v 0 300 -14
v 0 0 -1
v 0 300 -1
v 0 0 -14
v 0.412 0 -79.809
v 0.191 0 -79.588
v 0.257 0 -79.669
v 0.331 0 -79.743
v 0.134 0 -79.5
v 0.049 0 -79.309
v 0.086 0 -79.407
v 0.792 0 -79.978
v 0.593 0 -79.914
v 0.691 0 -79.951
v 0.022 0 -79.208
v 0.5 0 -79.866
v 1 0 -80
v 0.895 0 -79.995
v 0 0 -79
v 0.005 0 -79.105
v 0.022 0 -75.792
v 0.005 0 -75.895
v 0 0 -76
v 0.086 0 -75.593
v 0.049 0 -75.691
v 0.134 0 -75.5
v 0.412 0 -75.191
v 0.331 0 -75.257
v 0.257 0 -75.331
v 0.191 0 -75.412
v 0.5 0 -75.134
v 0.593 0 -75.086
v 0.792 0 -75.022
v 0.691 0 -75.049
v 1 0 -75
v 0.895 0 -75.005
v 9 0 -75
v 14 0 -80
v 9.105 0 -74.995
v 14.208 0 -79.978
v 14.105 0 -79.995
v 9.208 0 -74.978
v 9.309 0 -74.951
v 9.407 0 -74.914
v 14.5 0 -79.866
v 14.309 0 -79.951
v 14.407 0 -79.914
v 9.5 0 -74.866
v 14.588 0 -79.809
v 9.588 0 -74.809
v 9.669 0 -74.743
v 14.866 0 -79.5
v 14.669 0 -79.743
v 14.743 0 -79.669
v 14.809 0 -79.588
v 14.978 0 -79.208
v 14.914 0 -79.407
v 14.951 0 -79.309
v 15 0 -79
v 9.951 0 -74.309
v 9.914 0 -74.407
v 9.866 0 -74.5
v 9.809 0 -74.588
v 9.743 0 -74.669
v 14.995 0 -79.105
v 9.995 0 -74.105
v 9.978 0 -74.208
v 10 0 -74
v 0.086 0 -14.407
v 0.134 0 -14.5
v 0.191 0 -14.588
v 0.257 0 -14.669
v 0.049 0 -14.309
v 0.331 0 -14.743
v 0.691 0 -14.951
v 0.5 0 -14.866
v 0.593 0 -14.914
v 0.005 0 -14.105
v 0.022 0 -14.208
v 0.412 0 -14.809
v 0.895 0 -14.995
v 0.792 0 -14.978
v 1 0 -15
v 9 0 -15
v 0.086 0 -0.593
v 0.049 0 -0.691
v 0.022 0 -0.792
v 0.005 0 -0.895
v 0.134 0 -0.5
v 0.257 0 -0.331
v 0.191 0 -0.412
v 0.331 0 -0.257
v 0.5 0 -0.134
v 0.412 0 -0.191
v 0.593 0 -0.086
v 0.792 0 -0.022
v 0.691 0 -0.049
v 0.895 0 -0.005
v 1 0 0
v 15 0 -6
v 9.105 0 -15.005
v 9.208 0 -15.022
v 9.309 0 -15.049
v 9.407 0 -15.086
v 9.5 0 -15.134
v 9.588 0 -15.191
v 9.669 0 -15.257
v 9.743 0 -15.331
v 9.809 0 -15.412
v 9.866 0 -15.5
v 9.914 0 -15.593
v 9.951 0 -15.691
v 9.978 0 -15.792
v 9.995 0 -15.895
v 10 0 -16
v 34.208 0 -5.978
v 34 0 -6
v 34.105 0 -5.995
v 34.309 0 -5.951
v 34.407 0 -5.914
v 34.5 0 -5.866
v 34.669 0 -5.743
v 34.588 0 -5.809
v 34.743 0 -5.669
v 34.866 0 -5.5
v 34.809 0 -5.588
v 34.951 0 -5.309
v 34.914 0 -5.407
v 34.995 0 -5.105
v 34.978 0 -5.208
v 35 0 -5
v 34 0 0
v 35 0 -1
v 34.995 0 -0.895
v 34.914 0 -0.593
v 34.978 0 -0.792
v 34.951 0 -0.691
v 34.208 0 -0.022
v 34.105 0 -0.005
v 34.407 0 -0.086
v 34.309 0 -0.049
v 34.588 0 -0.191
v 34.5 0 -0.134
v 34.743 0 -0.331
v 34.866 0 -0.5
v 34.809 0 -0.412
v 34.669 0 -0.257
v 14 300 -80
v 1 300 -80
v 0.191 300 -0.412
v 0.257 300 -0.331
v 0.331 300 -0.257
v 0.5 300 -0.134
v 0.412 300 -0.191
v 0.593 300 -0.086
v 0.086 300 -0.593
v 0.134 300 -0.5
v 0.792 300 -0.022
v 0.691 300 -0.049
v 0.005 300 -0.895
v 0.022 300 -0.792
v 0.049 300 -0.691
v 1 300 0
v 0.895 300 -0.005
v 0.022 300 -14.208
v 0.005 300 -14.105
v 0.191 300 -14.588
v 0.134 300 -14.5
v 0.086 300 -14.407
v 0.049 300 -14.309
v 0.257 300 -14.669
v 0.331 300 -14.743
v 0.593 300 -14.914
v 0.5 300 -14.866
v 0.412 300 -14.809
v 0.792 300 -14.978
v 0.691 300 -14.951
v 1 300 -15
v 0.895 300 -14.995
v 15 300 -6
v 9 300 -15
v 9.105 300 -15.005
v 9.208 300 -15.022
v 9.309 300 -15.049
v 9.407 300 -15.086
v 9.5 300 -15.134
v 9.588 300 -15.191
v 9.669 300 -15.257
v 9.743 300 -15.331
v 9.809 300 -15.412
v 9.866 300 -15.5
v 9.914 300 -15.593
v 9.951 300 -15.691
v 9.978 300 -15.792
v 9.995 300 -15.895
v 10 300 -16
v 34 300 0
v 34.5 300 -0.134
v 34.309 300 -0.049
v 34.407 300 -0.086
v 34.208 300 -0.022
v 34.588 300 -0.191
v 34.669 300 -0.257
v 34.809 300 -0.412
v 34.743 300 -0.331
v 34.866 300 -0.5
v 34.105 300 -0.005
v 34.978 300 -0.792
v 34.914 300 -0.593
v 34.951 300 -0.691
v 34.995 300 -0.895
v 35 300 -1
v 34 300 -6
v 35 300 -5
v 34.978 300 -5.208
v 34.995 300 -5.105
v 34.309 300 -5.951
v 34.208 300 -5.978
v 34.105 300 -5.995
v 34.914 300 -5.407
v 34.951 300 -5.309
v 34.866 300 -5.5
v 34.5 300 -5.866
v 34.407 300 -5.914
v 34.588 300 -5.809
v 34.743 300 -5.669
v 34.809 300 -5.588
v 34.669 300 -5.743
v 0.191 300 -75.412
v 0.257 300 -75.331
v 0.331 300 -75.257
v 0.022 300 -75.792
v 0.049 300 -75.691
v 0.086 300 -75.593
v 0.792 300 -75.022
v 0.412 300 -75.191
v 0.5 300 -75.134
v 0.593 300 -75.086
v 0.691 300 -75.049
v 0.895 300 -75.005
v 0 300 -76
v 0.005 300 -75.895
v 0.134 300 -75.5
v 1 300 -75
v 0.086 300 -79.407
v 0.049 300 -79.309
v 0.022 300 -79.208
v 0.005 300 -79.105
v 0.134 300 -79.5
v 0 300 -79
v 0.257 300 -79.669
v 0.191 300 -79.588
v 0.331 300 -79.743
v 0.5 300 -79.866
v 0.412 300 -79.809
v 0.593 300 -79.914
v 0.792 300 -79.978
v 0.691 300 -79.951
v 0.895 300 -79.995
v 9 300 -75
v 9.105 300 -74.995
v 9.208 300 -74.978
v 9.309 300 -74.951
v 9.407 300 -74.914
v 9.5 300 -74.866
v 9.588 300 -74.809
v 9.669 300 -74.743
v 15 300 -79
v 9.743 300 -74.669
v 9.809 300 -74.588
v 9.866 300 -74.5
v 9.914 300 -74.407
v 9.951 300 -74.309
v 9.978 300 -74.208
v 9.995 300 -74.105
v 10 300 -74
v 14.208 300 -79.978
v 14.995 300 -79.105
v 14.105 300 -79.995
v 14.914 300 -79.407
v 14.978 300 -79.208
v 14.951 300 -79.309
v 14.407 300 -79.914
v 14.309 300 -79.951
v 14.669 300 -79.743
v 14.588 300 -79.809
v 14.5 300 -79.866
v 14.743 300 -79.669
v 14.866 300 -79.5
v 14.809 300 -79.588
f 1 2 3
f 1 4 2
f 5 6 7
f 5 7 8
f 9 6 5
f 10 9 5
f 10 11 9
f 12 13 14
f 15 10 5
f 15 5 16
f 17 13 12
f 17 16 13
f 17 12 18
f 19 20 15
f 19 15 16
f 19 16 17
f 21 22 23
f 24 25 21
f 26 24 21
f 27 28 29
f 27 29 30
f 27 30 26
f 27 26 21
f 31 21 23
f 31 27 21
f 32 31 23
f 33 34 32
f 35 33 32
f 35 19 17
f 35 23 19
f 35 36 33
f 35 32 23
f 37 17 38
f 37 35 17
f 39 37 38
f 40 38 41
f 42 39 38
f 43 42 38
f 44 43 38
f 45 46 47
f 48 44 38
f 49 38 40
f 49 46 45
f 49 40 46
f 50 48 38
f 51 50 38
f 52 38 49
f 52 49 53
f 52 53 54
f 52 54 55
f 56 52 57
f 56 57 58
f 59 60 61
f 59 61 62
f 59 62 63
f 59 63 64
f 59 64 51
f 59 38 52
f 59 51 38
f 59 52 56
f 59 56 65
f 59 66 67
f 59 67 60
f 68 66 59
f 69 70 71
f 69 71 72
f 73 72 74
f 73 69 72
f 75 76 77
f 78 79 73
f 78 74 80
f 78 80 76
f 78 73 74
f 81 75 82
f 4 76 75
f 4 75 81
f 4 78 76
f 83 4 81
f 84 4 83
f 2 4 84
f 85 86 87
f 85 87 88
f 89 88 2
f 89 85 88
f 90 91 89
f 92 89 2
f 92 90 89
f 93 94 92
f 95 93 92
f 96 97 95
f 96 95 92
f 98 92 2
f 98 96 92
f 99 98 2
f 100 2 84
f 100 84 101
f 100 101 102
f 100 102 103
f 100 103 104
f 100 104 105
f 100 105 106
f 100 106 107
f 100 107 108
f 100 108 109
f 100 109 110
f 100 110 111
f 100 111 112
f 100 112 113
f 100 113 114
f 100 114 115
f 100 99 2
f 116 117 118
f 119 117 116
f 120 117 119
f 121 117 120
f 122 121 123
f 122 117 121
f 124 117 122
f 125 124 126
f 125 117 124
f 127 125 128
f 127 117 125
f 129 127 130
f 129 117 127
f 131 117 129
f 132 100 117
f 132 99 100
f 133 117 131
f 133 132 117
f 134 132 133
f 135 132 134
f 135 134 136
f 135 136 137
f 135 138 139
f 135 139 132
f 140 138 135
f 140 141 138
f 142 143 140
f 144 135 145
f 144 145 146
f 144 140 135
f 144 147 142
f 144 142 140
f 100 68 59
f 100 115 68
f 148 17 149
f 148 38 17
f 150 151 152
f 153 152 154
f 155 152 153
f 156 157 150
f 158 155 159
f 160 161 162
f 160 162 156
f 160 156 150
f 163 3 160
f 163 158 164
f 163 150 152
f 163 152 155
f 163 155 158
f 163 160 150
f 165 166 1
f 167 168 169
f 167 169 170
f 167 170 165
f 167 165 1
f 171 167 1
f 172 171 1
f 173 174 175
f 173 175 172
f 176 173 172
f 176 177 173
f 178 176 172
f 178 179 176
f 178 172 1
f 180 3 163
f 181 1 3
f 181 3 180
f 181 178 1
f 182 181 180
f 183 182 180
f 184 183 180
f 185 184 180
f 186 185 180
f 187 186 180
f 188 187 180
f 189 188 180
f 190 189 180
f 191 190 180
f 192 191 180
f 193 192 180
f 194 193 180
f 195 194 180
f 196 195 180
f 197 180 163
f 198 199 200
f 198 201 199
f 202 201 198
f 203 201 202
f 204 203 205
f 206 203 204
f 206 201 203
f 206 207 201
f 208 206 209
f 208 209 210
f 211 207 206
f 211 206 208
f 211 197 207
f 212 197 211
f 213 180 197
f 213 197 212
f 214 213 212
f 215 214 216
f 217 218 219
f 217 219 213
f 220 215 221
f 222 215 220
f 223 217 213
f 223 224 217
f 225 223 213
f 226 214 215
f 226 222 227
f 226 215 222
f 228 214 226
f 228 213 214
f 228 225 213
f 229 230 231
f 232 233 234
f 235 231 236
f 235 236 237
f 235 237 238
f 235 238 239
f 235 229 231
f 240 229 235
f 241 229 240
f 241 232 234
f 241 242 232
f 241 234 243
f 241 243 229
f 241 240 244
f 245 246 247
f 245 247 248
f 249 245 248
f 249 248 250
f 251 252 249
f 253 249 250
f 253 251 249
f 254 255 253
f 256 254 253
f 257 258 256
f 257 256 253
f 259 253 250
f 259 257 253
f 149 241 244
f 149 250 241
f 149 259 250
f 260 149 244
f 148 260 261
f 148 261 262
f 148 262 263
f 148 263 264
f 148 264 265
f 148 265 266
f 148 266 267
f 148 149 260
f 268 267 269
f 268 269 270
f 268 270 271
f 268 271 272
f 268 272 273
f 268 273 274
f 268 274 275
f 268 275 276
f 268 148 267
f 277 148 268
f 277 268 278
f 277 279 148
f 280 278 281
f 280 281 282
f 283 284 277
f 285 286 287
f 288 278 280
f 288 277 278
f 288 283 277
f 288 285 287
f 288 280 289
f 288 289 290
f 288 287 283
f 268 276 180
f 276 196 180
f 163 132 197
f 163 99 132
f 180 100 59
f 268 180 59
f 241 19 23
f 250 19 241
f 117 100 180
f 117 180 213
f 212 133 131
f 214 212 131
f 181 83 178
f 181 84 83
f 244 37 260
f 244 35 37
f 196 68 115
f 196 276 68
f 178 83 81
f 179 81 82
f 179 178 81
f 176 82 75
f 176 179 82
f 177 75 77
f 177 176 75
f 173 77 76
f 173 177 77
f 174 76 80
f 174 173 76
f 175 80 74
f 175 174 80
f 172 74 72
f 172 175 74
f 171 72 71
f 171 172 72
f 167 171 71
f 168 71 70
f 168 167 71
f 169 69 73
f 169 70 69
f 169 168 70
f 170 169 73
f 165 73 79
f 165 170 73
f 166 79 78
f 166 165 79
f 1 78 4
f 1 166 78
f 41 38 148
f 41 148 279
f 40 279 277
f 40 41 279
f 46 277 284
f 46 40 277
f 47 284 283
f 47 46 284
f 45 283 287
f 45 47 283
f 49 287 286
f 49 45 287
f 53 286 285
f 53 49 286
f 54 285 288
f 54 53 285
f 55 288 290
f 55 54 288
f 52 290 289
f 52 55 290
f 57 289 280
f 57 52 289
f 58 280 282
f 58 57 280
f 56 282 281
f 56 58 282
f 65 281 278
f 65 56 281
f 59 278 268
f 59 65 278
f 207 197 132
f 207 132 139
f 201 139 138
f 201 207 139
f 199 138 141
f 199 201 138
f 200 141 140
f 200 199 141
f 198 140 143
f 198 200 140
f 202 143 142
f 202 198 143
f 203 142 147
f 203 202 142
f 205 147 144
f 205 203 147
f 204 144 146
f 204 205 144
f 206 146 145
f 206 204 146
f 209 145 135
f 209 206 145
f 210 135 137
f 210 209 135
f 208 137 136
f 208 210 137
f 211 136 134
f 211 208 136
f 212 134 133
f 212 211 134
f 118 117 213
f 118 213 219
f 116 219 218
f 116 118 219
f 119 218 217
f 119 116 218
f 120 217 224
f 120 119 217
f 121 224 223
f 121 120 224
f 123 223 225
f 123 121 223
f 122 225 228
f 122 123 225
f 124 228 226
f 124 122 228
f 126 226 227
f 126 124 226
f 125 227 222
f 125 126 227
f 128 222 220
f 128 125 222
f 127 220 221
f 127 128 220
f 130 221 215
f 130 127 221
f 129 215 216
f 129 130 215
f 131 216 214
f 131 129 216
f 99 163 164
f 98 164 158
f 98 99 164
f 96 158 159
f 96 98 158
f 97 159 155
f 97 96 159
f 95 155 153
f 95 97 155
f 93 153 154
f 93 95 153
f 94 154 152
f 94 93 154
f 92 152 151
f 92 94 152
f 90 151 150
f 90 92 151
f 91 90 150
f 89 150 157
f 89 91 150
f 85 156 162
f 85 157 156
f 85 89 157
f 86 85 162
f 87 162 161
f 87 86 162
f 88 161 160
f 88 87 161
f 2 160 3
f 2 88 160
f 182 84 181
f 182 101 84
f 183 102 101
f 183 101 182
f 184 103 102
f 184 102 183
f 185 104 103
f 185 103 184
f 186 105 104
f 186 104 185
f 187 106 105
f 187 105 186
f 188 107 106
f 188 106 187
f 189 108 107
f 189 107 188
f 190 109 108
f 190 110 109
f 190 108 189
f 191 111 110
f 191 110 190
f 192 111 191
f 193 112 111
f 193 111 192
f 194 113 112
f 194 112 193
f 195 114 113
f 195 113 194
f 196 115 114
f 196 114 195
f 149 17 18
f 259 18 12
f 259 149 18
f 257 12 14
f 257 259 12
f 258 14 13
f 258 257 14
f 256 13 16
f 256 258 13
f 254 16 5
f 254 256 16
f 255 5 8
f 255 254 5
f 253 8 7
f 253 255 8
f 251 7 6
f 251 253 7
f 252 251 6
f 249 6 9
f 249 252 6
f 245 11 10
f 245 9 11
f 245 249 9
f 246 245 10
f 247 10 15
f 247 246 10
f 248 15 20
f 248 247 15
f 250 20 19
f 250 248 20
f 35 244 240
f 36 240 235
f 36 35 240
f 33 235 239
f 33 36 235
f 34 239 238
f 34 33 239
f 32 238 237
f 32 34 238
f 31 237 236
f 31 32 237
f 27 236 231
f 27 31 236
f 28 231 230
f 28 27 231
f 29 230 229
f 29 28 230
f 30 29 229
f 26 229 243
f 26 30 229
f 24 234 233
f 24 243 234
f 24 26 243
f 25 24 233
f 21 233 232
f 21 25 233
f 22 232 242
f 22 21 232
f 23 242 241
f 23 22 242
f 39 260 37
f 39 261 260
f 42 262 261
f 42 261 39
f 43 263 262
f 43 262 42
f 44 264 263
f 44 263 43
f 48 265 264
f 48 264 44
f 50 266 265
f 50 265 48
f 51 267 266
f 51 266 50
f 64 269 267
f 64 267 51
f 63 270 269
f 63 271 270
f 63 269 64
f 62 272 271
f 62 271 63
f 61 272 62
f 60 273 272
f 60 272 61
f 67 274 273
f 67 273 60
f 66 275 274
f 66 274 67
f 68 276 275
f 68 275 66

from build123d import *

# Parameters (mm, degrees)
SKETCH1_W           = 300
SKETCH1_H           = 80
BOSS_EXTRUDE1_DEPTH = 15
SKETCH2_W           = 300
SKETCH2_H           = 6
BOSS_EXTRUDE2_DEPTH = 20
SKETCH3_W           = 300
SKETCH3_H           = 60
CUT_EXTRUDE1_DEPTH  = 10
FILLET1_R           = 1


with BuildPart() as part:
    # Sketch1 → Boss-Extrude1 (new body)
    with BuildSketch(Plane.YZ):
        with Locations((150, -40)):
            Rectangle(SKETCH1_W, SKETCH1_H)
    extrude(amount=BOSS_EXTRUDE1_DEPTH)

    # Sketch2 → Boss-Extrude2 (add)
    with BuildSketch(Plane.YZ.offset(15)):
        with Locations((150, -3)):
            Rectangle(SKETCH2_W, SKETCH2_H)
    extrude(amount=BOSS_EXTRUDE2_DEPTH)

    # Sketch3 → Cut-Extrude1 (cut)
    with BuildSketch(Plane(origin=(0, 0, 0), x_dir=(0, -1, 0), z_dir=(-1, 0, 0))):
        with Locations((-150, -45)):
            Rectangle(SKETCH3_W, SKETCH3_H)
    extrude(amount=-CUT_EXTRUDE1_DEPTH, mode=Mode.SUBTRACT)

    # Fillet1
    fillet1_edges = [part.edges().sort_by_distance(p)[0] for p in [
        (35, 150, -6),
        (35, 150, 0),
        (10, 150, -15),
        (10, 150, -75),
        (0, 150, -75),
        (0, 150, -15),
        (0, 150, 0),
        (0, 150, -80),
        (15, 150, -80),
    ]]
    fillet(fillet1_edges, radius=FILLET1_R)


solid = part.part
